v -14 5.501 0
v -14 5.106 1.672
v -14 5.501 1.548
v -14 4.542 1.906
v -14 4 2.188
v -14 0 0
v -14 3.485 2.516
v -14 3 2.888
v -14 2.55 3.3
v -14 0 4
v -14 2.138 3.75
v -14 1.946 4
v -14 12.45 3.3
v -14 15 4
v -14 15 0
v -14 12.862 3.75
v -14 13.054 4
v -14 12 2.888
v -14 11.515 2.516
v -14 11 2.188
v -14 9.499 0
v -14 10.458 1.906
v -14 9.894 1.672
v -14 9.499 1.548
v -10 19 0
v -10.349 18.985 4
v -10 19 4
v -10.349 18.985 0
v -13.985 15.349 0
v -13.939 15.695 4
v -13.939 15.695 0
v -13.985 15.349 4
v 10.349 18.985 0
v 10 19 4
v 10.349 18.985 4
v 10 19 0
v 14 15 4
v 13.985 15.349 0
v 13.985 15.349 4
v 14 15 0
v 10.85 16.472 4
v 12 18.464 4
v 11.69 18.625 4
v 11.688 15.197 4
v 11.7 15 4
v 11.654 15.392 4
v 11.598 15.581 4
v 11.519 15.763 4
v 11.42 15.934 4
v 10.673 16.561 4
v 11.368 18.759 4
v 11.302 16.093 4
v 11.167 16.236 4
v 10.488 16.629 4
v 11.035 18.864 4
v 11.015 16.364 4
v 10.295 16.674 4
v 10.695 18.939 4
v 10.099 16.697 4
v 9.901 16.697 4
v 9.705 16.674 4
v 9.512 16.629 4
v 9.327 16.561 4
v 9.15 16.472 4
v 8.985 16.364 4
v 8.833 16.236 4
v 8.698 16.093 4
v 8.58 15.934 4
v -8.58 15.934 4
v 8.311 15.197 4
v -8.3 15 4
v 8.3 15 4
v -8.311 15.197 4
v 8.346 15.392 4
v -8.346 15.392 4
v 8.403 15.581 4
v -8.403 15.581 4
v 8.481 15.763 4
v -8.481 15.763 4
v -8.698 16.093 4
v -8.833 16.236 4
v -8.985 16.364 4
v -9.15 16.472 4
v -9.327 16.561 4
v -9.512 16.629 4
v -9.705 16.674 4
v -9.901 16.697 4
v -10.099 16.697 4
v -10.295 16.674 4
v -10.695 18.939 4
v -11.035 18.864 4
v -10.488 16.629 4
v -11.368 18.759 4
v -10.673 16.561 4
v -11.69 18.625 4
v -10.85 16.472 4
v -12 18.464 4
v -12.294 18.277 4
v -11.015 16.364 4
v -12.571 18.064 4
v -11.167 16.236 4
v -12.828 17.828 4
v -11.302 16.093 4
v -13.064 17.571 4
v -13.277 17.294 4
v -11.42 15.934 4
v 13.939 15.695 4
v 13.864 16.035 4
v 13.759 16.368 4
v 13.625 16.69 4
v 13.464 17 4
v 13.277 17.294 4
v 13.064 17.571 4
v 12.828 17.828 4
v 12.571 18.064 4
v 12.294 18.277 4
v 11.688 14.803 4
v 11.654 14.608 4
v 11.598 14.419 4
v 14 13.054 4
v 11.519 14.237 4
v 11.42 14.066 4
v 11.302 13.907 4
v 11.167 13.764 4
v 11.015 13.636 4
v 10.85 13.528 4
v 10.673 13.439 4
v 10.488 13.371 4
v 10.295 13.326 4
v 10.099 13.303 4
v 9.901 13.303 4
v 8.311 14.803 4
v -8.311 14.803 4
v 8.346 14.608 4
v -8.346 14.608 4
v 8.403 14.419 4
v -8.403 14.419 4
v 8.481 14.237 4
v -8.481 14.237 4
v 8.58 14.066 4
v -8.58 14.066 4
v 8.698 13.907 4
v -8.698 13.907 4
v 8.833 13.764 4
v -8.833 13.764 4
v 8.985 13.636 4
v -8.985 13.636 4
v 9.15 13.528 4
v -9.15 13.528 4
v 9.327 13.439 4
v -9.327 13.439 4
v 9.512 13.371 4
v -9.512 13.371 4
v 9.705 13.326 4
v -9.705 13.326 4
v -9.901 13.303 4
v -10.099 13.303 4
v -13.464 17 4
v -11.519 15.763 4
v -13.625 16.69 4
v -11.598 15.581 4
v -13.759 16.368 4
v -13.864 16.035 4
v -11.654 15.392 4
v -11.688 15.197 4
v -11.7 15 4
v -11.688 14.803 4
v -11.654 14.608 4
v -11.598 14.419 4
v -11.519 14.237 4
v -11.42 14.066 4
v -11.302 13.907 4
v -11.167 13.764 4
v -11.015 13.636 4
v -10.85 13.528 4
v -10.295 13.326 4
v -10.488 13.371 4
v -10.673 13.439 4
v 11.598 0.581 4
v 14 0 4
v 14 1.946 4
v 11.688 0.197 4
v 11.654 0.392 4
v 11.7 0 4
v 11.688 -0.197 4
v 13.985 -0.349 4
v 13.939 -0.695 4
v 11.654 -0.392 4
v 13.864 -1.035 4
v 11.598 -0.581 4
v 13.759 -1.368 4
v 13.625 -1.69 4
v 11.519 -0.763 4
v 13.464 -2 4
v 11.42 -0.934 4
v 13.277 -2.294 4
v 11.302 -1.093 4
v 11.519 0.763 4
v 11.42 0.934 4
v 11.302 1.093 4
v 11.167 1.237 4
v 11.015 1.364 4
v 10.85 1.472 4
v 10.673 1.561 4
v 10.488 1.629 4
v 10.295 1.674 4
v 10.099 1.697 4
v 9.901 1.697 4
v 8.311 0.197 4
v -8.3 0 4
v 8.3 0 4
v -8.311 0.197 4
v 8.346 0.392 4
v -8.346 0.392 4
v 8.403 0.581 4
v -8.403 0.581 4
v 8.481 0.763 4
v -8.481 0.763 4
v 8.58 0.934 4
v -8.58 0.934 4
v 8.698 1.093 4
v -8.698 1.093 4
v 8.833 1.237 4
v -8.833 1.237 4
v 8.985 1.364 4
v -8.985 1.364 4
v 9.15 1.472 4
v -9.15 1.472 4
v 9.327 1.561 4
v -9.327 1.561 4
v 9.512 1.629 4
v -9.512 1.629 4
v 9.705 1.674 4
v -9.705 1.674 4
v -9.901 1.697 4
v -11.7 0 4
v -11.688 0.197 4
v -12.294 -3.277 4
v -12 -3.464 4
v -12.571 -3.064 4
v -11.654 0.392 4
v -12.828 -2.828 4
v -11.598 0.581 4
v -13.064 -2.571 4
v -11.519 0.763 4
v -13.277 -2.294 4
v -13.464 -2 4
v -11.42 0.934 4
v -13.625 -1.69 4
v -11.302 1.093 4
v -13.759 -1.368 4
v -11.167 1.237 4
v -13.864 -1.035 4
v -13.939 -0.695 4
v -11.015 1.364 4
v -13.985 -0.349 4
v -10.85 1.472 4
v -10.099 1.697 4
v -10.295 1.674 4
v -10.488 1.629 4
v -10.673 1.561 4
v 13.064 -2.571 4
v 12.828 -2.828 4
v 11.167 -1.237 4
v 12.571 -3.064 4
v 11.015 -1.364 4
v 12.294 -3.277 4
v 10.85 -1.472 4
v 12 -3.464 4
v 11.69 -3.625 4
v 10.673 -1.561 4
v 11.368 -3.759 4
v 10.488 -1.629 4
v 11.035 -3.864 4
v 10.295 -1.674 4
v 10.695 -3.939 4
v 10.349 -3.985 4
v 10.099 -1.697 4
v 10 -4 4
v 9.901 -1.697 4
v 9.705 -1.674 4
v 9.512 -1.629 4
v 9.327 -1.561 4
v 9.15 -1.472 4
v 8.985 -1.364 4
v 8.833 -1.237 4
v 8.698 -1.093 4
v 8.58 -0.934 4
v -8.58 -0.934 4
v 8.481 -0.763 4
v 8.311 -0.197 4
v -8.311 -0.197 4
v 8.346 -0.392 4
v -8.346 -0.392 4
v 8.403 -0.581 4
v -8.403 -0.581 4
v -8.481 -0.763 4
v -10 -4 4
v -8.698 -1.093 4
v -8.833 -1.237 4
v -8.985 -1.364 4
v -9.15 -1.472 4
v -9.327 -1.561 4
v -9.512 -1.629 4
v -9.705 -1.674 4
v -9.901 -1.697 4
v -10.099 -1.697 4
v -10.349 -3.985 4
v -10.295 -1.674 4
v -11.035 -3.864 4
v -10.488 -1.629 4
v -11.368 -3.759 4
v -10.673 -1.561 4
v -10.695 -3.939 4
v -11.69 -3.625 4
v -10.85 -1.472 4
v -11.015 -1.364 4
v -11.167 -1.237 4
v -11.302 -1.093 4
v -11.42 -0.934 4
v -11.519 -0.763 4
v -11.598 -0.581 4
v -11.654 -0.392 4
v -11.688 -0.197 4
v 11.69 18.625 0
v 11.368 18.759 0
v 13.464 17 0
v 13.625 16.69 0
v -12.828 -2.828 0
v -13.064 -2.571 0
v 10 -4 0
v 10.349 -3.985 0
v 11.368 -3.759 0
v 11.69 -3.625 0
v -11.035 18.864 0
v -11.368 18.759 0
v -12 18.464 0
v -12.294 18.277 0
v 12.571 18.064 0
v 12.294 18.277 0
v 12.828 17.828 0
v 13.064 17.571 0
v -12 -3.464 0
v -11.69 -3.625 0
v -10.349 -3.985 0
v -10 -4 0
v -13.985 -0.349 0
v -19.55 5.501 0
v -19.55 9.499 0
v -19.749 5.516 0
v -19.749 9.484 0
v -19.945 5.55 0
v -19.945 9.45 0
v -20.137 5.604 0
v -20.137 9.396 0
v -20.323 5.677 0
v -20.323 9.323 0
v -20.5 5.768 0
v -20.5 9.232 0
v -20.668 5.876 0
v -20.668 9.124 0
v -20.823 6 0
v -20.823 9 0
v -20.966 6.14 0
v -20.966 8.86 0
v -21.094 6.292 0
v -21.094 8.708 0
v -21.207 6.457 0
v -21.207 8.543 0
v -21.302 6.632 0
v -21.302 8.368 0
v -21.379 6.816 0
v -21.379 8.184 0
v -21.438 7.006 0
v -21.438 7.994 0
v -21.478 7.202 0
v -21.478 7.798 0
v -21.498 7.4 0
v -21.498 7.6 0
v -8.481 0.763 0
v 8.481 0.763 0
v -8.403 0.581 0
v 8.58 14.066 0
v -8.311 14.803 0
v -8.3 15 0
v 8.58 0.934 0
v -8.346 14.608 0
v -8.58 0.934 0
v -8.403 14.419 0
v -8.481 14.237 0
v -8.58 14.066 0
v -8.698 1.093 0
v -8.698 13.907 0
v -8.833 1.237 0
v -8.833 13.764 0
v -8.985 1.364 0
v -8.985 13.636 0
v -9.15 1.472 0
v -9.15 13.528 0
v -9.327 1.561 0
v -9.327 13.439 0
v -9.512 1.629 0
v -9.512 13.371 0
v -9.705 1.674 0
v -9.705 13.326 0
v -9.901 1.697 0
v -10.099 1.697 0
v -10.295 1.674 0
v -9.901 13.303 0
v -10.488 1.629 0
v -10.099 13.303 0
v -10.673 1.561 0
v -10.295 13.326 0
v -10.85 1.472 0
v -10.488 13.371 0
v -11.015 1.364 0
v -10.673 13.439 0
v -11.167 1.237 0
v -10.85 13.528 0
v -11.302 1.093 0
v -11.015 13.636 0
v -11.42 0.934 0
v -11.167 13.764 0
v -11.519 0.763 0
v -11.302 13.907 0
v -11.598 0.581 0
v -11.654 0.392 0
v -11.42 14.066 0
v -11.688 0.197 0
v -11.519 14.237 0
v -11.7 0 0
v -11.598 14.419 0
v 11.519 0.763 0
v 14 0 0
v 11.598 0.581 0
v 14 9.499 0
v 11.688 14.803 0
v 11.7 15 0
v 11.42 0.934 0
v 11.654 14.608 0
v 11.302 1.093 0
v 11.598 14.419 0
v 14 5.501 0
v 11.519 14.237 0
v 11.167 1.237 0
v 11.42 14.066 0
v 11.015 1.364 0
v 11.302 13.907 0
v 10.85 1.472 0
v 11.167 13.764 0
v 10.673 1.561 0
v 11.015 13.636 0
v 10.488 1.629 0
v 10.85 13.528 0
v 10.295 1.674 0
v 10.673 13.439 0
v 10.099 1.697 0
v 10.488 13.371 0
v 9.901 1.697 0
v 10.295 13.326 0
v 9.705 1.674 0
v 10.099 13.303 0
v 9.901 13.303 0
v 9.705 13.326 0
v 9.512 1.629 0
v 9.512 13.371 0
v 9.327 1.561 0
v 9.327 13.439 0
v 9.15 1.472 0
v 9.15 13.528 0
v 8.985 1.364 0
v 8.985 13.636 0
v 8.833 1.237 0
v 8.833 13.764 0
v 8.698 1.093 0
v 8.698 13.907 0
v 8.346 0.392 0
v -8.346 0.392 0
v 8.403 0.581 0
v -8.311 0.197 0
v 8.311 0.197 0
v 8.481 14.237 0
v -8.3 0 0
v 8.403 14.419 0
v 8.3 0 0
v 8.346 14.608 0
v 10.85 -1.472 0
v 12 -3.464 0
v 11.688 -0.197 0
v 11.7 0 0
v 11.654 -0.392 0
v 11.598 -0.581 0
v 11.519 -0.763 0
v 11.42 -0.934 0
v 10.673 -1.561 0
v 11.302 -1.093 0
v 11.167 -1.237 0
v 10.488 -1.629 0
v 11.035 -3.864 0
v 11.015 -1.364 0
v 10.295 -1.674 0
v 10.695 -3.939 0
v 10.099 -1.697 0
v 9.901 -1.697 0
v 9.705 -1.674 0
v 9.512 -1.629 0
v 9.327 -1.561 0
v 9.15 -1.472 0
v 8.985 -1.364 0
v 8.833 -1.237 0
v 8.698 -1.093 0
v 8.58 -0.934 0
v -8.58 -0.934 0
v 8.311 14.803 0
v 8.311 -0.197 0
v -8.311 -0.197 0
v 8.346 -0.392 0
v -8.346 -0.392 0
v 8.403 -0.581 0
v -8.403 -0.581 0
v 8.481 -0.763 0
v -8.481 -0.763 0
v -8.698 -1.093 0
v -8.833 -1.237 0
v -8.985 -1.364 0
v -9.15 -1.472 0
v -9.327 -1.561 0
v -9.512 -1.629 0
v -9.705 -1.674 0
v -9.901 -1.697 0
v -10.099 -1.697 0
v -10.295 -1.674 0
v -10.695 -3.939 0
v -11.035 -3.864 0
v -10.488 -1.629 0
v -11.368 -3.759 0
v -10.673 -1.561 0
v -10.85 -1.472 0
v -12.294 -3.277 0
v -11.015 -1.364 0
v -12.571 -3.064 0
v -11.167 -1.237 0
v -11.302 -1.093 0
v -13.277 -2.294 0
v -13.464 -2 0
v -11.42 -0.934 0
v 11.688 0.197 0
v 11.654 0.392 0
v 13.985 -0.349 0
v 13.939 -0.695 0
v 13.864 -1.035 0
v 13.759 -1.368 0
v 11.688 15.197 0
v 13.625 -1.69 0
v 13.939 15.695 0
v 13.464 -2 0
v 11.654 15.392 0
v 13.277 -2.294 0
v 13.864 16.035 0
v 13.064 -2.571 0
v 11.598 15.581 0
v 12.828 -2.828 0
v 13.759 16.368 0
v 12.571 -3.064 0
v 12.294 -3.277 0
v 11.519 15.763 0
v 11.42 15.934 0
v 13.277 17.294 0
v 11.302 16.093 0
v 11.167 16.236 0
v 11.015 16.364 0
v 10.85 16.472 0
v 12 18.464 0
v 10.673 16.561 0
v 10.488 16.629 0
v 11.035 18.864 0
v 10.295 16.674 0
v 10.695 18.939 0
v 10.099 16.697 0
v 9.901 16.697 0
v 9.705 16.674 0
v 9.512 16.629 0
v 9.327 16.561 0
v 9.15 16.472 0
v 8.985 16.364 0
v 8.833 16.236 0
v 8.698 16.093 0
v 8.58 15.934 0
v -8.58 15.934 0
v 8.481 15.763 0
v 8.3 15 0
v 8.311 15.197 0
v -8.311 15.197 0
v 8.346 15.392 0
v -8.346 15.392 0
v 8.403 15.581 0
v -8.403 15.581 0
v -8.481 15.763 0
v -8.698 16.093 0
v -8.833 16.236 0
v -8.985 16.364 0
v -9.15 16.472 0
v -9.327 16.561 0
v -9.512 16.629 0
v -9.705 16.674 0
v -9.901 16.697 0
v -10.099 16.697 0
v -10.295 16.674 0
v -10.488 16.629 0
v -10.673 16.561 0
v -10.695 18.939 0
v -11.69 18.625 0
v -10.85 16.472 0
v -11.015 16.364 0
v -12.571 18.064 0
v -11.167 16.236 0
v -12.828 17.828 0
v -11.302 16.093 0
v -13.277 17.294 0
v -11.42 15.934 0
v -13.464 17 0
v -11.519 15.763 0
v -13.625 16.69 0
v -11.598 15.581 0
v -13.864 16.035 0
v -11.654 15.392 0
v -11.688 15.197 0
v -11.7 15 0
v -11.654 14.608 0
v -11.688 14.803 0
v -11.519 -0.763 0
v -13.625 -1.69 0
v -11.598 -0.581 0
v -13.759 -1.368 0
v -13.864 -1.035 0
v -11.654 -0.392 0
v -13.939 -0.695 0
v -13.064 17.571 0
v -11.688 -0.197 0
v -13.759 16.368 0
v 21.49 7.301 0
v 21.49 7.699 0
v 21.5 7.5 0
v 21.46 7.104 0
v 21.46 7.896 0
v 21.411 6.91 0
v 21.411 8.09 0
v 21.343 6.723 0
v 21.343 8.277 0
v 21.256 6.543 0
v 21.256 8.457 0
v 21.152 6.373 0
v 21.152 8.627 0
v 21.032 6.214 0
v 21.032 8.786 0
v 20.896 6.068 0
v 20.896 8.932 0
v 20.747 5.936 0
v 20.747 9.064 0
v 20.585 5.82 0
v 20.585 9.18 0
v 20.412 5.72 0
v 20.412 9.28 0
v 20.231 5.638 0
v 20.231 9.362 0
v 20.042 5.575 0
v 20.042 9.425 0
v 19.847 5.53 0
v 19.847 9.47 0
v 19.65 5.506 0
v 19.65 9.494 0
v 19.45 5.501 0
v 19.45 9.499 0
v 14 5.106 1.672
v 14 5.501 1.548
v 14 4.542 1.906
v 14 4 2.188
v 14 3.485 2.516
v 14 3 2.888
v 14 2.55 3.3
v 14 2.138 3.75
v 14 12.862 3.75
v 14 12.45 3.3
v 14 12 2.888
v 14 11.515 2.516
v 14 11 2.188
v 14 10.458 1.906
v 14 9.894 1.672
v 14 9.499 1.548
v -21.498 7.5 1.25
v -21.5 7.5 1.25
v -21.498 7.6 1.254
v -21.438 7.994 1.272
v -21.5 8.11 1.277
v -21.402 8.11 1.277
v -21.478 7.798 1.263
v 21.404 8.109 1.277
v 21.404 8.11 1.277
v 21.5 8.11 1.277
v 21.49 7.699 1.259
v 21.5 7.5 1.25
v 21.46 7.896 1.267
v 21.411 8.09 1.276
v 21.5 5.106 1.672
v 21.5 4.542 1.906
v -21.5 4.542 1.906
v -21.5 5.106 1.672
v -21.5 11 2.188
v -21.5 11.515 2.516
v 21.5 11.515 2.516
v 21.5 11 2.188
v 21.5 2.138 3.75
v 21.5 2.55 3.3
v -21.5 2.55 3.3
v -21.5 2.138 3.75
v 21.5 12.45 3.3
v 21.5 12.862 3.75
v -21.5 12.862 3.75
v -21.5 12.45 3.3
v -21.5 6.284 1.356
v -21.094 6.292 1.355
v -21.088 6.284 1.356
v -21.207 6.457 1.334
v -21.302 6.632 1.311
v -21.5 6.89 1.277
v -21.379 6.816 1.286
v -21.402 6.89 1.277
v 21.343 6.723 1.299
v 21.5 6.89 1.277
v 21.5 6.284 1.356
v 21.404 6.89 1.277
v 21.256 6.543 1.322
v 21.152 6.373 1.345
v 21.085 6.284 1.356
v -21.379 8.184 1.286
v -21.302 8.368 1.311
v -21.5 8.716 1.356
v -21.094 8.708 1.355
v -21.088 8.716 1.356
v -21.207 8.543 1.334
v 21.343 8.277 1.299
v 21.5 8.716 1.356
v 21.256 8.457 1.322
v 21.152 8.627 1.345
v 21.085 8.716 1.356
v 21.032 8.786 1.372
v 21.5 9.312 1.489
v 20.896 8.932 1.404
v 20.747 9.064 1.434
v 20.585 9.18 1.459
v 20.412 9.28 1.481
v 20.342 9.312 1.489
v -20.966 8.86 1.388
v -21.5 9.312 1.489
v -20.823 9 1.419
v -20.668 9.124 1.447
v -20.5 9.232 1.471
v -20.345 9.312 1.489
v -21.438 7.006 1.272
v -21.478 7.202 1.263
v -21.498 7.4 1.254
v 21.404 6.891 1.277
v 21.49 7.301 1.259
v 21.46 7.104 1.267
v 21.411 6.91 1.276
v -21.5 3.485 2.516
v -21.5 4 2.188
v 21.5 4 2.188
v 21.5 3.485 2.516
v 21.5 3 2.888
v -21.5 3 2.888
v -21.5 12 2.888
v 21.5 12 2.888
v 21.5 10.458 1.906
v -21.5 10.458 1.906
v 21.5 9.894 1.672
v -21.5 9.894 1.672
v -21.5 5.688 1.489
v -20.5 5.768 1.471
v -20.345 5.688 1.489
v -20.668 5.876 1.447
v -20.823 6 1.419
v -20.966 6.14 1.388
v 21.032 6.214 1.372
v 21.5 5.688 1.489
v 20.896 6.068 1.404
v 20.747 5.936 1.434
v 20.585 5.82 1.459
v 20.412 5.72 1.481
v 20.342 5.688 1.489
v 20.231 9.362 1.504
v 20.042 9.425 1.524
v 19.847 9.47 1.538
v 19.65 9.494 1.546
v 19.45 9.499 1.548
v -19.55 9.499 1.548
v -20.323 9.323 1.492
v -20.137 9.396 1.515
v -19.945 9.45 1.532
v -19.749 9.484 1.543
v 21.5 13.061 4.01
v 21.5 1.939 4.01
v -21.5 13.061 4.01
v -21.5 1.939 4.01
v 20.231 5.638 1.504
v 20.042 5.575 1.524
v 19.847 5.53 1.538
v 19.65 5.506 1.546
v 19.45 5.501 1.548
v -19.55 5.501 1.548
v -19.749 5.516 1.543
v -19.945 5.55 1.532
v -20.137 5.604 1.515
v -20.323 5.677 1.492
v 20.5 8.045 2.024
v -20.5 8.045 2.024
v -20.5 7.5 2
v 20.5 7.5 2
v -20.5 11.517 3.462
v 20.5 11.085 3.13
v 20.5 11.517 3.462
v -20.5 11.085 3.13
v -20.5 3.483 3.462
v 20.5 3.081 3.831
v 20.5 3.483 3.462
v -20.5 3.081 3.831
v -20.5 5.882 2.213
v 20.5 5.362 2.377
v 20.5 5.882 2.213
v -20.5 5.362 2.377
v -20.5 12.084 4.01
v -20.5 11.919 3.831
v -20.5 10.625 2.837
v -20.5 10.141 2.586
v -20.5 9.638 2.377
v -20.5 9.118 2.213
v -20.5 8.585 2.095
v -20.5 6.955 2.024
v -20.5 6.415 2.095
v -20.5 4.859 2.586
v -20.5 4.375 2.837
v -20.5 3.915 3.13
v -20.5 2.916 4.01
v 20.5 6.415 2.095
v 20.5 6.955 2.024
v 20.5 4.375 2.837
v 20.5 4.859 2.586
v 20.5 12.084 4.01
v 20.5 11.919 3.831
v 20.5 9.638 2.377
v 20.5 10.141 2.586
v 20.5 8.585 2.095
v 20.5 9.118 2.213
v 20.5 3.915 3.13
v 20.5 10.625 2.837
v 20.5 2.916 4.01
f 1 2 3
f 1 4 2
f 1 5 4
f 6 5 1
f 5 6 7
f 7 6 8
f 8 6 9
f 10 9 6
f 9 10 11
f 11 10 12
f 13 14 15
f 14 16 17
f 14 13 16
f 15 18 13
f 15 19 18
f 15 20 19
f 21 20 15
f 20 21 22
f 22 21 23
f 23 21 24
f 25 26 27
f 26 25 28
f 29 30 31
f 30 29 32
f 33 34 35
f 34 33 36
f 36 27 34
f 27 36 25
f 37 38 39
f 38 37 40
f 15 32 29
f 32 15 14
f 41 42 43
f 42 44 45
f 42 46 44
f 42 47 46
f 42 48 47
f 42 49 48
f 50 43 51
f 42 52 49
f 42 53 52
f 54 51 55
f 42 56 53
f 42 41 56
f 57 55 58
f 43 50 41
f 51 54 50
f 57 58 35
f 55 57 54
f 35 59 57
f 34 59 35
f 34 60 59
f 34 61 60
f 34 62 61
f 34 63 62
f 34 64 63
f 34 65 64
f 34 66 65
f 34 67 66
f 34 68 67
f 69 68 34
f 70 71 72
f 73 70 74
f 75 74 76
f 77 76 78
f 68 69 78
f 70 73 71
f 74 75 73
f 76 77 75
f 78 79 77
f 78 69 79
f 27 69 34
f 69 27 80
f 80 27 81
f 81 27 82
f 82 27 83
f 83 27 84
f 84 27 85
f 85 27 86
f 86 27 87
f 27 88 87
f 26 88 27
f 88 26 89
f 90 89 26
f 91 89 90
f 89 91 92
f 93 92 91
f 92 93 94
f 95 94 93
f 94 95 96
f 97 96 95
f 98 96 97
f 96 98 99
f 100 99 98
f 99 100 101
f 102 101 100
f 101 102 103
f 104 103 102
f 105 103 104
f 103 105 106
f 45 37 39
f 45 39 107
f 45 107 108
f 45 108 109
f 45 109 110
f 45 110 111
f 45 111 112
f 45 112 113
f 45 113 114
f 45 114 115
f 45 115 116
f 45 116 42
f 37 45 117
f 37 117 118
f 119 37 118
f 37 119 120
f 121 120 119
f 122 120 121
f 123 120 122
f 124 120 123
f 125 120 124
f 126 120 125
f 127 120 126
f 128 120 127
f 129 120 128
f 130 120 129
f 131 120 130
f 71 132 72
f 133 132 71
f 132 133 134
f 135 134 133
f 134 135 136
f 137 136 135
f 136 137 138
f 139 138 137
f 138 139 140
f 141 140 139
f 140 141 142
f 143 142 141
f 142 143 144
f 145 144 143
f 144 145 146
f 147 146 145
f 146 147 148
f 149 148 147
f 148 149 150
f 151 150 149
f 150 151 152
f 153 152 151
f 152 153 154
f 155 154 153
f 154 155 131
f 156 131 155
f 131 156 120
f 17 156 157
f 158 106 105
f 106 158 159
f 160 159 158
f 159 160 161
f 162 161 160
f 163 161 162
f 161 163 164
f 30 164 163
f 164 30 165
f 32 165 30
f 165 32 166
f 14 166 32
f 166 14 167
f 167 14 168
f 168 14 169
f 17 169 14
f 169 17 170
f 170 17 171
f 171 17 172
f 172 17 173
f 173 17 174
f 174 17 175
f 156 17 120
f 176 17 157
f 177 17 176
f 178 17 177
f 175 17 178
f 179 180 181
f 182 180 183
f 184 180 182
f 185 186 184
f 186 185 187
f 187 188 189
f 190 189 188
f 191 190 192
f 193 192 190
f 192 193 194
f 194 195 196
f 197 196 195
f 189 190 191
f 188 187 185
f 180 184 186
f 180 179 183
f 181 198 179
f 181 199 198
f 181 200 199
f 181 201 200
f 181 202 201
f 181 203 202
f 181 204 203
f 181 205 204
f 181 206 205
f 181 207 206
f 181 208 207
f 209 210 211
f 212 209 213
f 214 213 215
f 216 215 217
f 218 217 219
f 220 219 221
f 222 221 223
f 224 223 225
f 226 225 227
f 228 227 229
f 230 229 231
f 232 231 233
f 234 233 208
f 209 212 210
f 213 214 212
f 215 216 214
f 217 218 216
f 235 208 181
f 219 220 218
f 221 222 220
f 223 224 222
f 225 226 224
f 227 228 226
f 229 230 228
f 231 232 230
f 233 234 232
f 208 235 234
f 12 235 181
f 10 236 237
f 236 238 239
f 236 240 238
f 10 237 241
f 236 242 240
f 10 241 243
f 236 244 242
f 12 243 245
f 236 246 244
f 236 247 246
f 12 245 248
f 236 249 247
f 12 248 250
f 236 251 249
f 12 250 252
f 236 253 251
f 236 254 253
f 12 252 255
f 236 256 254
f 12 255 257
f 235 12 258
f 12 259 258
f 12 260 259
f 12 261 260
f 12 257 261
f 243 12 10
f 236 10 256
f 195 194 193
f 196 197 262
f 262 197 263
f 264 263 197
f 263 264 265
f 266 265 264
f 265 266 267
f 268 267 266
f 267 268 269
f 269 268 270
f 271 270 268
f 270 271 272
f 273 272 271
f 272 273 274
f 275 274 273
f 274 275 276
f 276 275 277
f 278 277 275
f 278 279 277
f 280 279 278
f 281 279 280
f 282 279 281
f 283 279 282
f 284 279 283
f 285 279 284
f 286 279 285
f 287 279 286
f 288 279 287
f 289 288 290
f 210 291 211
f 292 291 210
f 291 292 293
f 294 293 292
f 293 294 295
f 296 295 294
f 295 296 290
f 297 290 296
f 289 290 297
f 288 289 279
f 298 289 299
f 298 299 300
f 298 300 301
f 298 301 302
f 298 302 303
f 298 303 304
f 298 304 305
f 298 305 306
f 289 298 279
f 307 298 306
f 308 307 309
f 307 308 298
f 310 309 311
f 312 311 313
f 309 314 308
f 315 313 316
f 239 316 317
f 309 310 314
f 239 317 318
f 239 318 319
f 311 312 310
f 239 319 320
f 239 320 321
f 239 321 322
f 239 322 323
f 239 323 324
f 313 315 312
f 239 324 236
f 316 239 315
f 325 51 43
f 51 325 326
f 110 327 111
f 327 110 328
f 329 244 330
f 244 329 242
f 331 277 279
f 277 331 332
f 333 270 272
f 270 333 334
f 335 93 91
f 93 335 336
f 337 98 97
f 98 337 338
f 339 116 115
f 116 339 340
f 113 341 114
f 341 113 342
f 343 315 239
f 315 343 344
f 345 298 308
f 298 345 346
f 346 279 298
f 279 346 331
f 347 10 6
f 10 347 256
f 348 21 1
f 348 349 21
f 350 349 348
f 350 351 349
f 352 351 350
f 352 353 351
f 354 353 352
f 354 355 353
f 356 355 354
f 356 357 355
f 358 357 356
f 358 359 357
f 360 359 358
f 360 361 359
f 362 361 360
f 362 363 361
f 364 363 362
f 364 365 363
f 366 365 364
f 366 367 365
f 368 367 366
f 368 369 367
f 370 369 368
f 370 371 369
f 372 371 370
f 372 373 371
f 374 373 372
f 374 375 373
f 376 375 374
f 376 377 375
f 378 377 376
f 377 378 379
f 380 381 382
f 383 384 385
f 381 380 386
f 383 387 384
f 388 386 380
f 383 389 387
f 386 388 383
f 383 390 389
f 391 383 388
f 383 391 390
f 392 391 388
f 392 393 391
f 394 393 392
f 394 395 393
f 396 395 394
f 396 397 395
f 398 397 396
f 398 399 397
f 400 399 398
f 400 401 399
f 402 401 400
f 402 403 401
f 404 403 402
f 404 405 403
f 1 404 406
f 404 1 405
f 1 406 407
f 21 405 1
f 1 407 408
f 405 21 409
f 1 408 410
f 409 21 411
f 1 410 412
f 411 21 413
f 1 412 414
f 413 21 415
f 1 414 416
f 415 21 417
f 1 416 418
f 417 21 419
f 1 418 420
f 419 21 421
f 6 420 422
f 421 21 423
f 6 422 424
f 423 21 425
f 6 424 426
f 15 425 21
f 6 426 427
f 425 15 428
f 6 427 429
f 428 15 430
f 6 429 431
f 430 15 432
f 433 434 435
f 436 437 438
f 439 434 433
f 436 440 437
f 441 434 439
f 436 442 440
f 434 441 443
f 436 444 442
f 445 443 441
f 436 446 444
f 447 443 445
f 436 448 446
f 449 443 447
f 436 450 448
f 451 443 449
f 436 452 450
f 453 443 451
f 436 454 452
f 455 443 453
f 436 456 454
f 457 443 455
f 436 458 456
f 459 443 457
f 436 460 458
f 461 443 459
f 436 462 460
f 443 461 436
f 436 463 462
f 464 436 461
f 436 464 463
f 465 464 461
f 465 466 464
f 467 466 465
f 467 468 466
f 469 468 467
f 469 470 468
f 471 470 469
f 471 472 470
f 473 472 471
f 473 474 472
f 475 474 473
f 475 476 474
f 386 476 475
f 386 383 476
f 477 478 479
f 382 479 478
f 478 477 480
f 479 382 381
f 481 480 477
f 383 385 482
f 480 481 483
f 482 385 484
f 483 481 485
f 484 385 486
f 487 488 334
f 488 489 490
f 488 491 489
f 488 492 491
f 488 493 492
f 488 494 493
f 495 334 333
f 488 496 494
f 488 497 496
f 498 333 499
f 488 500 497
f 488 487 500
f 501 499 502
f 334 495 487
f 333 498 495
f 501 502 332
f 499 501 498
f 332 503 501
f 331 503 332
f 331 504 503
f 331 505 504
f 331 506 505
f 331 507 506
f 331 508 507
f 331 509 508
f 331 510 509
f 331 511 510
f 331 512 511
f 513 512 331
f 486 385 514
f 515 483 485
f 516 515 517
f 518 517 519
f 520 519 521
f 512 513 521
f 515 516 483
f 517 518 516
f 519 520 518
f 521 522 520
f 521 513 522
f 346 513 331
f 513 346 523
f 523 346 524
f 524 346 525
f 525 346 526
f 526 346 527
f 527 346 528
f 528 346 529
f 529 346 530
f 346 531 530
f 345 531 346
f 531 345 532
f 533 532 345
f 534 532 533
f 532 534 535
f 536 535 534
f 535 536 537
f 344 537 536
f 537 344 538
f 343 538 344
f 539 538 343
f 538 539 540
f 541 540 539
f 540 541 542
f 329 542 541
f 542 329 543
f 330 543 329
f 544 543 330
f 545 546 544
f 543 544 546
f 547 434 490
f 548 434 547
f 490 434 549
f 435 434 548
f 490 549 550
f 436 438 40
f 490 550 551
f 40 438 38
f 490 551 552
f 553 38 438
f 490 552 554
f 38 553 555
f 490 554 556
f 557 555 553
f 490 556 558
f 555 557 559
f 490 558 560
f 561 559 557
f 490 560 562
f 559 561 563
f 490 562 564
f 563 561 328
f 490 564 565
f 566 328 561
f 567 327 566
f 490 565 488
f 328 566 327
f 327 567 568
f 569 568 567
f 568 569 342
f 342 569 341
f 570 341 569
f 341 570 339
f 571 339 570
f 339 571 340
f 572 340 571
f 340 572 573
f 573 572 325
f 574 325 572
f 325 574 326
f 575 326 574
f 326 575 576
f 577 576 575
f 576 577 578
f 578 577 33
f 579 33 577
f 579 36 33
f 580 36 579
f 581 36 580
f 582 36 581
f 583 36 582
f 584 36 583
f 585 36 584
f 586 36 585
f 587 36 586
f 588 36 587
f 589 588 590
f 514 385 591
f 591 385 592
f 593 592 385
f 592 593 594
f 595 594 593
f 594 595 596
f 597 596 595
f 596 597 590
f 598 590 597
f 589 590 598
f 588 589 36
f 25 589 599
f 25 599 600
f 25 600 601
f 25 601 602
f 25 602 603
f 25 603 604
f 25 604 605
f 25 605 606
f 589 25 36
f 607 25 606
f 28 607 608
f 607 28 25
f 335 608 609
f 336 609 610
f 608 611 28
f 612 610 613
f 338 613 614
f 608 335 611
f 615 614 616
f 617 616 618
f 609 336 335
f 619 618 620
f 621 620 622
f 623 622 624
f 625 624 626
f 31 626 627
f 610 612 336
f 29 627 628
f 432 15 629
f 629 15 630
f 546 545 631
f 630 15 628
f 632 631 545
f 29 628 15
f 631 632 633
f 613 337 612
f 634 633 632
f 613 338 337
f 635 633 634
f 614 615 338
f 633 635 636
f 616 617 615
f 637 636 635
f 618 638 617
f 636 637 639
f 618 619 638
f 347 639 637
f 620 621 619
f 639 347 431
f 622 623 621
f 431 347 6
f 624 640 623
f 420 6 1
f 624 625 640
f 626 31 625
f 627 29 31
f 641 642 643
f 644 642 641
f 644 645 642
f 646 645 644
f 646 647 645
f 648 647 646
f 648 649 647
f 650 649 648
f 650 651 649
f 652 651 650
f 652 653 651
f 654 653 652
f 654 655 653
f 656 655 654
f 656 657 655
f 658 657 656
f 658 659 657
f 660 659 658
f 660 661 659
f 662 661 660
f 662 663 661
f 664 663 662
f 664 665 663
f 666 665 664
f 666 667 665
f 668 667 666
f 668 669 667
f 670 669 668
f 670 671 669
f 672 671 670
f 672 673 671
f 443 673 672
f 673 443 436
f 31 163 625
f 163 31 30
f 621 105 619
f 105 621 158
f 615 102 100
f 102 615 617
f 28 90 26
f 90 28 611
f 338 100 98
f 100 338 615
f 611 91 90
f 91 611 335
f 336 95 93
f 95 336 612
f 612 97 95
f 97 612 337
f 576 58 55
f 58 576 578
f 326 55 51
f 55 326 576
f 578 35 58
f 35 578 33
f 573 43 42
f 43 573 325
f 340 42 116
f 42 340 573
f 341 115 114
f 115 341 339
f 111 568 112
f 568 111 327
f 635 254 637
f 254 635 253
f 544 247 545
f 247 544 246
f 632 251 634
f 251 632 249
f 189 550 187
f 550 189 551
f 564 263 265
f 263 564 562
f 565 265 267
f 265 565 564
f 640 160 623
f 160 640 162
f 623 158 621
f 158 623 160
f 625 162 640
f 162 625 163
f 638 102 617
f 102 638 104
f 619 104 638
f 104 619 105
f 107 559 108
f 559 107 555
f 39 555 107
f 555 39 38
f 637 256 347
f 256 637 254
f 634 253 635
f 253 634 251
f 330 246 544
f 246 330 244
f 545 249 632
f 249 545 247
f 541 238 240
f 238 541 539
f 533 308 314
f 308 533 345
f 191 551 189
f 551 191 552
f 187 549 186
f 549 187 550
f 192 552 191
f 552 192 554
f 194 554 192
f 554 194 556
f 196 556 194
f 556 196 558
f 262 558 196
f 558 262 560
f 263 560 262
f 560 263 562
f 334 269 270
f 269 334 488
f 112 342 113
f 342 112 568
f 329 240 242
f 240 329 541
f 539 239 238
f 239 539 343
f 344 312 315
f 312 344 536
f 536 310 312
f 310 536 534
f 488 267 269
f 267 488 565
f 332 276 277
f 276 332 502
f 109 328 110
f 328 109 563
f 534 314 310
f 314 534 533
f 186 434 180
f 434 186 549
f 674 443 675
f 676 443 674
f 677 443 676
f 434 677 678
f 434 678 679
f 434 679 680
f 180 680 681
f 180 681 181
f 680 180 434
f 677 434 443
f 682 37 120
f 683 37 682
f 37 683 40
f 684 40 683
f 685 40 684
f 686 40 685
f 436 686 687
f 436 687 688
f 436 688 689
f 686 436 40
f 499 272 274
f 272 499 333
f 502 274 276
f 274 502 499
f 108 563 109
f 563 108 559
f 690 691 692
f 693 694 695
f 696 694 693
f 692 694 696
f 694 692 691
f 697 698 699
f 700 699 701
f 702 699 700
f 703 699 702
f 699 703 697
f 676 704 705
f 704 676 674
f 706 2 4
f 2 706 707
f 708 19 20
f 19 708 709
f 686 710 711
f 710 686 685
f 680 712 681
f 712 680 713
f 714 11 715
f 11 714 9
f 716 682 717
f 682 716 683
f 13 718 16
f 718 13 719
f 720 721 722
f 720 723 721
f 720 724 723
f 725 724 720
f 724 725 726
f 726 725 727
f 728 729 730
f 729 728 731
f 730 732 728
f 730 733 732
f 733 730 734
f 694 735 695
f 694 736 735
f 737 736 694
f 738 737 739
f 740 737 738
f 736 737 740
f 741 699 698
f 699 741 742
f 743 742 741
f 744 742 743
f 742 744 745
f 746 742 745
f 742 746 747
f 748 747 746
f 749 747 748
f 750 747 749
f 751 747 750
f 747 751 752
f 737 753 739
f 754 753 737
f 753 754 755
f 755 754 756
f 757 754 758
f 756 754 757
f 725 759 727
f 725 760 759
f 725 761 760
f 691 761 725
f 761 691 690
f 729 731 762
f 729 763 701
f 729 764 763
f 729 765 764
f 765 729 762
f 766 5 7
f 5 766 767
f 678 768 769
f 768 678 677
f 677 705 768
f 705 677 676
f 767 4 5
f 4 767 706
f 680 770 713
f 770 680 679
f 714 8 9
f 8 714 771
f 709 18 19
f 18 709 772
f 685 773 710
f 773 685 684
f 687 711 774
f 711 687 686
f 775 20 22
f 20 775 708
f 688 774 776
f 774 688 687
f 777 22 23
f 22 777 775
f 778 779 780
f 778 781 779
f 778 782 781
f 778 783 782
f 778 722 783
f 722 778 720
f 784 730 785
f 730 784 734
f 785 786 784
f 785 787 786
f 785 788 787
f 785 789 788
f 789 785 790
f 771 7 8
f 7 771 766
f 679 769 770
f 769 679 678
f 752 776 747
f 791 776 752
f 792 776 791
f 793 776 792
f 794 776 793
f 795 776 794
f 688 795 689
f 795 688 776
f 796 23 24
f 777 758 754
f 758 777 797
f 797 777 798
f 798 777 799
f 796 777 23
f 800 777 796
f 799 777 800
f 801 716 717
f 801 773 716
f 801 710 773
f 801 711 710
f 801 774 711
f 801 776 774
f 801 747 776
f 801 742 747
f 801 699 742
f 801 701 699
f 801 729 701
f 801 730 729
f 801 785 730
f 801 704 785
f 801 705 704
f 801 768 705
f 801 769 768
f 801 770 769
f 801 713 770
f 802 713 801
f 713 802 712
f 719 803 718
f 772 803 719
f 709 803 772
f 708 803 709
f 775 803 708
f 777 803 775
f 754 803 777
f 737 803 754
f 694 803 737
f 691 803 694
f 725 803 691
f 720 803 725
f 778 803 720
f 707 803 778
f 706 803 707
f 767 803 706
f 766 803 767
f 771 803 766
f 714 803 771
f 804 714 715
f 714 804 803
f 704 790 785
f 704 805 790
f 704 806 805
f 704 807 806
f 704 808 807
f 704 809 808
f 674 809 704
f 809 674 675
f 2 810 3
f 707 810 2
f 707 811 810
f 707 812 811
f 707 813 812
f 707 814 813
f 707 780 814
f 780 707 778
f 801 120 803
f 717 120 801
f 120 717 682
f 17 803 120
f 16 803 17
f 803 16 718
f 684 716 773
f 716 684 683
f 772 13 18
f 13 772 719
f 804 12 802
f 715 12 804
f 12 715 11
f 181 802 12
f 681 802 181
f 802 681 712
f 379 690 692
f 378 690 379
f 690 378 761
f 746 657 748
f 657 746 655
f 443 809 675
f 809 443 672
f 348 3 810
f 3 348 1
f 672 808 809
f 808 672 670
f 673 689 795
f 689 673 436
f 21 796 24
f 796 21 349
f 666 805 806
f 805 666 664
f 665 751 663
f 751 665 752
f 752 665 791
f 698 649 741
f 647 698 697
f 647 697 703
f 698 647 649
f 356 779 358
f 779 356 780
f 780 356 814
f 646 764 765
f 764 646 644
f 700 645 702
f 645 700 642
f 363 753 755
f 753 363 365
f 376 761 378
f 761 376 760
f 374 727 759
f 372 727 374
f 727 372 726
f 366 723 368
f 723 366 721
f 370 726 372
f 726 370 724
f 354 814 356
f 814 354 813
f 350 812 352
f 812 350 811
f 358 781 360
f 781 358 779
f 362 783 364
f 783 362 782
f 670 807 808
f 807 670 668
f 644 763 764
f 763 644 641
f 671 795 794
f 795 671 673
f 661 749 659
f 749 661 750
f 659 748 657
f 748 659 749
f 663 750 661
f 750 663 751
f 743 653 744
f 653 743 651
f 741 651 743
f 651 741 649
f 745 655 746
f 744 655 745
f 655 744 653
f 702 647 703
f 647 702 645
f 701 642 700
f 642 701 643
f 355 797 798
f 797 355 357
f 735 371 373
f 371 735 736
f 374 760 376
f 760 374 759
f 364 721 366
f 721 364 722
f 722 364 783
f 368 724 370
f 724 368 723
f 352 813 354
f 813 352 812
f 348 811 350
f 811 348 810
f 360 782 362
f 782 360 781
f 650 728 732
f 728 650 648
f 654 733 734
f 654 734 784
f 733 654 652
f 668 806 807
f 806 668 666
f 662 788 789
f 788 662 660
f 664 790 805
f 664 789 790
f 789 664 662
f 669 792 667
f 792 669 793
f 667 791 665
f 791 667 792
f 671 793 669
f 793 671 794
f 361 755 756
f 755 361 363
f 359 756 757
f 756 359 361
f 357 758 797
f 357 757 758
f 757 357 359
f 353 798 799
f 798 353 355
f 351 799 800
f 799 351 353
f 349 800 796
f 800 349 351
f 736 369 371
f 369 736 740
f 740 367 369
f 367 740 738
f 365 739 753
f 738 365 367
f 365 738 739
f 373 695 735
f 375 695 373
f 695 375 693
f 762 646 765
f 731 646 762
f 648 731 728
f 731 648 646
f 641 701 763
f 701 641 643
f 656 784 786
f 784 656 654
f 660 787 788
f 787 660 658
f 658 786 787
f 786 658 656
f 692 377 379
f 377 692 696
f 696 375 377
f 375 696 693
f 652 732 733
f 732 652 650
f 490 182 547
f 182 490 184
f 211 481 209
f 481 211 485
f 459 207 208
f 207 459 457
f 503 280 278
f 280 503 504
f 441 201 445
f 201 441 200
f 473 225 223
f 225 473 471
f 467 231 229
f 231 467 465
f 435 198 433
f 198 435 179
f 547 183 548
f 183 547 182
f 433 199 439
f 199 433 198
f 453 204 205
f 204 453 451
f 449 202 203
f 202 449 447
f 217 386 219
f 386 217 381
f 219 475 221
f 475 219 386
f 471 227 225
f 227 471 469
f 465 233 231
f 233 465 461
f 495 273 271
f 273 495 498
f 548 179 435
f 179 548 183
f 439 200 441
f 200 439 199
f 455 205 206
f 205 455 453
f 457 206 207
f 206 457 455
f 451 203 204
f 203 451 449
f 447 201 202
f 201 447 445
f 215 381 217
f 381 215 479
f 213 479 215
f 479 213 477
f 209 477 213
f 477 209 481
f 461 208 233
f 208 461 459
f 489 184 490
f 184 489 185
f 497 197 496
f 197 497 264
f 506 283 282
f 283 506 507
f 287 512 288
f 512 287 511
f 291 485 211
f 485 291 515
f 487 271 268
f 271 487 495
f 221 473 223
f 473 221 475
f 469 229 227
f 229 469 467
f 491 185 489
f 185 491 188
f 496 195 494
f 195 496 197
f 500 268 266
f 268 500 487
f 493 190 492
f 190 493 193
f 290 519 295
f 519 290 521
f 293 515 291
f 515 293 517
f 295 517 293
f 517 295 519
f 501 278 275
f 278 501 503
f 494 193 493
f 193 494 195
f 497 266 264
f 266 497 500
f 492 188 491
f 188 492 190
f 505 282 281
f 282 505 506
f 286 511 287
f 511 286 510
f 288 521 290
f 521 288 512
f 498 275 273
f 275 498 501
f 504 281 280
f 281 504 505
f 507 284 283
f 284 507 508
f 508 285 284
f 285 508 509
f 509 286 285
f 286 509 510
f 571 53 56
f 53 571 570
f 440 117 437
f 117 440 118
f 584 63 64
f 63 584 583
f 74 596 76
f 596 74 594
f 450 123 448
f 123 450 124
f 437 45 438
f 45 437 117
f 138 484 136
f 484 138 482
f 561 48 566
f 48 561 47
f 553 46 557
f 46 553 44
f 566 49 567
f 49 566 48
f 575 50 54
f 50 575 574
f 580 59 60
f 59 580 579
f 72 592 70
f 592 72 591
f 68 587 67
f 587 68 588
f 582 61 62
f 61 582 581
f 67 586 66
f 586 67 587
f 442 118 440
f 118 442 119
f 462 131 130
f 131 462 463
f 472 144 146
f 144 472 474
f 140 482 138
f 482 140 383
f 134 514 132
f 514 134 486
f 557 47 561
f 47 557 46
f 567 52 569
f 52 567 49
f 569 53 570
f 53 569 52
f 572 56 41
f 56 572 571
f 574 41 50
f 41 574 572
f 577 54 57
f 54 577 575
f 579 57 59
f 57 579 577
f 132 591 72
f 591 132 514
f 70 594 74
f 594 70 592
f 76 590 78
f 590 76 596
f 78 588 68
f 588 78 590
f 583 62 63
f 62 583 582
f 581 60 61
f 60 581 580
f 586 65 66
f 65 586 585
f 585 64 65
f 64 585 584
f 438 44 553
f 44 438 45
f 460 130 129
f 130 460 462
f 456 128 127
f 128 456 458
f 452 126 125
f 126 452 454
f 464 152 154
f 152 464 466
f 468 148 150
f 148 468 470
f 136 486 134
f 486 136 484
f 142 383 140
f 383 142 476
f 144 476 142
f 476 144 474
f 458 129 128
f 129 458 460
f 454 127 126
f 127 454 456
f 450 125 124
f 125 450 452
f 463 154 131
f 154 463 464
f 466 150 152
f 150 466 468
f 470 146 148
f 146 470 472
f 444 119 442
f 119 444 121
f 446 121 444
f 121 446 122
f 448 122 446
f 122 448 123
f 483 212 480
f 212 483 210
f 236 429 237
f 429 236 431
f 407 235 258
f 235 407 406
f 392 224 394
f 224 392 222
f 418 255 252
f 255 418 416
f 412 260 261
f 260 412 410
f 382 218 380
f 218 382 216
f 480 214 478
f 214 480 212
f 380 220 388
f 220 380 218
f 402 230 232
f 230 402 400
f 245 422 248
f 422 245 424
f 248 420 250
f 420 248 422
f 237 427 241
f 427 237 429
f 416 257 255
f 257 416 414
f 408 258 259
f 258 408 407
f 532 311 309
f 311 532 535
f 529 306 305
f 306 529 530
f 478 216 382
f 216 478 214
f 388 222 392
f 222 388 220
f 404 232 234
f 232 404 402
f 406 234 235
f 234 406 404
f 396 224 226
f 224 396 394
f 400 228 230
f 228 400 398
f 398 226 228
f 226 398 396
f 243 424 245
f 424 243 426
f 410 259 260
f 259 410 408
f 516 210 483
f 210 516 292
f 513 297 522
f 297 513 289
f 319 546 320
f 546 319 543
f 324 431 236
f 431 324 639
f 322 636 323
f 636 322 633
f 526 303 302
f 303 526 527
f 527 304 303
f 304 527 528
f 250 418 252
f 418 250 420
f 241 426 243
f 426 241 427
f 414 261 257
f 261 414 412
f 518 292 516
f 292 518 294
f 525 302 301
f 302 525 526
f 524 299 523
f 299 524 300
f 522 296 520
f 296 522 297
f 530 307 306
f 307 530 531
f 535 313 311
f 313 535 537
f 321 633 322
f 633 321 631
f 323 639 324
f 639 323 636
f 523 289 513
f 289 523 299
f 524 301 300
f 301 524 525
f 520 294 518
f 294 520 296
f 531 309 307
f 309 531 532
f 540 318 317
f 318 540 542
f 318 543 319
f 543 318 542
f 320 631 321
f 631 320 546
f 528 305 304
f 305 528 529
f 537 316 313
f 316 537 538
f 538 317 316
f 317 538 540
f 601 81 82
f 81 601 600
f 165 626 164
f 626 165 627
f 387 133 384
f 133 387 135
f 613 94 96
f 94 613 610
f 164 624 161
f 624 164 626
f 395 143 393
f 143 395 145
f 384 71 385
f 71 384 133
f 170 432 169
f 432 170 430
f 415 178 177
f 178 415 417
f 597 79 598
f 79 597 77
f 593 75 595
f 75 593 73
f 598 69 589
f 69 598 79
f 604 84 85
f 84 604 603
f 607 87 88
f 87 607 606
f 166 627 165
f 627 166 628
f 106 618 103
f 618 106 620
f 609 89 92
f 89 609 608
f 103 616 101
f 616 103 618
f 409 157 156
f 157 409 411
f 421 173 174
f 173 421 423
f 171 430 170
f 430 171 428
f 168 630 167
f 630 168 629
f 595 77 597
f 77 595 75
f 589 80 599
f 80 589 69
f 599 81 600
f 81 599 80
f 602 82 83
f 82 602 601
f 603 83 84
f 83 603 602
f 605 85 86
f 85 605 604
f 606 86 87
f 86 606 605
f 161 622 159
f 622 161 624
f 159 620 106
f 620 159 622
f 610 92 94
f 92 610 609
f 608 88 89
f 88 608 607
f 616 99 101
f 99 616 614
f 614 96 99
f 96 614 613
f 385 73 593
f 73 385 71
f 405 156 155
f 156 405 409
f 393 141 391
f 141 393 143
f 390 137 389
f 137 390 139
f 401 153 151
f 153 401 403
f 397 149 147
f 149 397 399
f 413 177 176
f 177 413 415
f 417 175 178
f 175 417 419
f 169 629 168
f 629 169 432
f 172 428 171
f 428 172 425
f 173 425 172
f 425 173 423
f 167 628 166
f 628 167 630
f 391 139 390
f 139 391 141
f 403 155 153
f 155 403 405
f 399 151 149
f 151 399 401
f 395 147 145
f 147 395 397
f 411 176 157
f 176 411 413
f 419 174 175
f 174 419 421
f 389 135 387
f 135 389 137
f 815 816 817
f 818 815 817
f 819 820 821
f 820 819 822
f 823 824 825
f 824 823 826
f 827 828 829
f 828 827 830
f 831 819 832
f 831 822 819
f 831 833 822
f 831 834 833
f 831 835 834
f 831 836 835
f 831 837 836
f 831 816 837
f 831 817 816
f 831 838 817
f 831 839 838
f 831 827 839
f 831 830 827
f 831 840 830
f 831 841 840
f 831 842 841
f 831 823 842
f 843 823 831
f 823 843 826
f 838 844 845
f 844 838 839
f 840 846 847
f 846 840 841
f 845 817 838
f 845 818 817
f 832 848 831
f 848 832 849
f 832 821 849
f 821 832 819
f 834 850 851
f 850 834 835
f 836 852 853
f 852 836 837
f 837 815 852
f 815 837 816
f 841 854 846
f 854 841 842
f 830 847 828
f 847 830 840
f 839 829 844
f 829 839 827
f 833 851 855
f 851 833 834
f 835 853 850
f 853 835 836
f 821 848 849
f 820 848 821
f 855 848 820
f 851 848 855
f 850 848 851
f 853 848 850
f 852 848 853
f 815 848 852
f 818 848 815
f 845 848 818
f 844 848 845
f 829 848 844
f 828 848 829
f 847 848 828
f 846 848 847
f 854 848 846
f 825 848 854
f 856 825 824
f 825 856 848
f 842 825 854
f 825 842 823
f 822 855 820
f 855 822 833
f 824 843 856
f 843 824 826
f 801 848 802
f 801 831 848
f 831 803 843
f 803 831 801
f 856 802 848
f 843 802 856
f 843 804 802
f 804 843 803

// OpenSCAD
$fa=5; $fs=0.2;

difference(){
    
    union(){
       
        // упор под lm6uu
        hull(){ 
            translate([10, 0, 2]) cylinder(h=4, r=4, center=true); 
            translate([-10, 0, 2]) cylinder(h=4, r=4, center=true);
            translate([10, 15, 2]) cylinder(h=4, r=4, center=true);
            translate([-10, 15, 2]) cylinder(h=4, r=4, center=true);
        }
        
        translate([0, 7.5, 8.25]) rotate([0, 90, 0]) cylinder(h=43, r=7, center=true); // цилиндр под LM6UU
        
        // ребро
        hull(){
            translate([-19.5, 7.5, 3]) cylinder(h=6, r=2, center=true);
            translate([19.5, 7.5, 3]) cylinder(h=6, r=2, center=true);
        }
    }
    
    union(){
        translate([10, 0, 4]) cylinder(h=8.01, r=1.7, center=true); // под прижим lm6uu
        translate([10, 15, 4]) cylinder(h=8.01, r=1.7, center=true);
        translate([-10, 0, 4]) cylinder(h=8.01, r=1.7, center=true);
        translate([-10, 15, 4]) cylinder(h=8.01, r=1.7, center=true);
        
        translate([0, 7.5, 8.25]) rotate([0, 90, 0]) cylinder(h=41, r=6.25, center=true); // паз под LM6UU
        
        translate([-25, -25, 4.01]) cube([50,50,20]); //срезать все сверху
    }
}
